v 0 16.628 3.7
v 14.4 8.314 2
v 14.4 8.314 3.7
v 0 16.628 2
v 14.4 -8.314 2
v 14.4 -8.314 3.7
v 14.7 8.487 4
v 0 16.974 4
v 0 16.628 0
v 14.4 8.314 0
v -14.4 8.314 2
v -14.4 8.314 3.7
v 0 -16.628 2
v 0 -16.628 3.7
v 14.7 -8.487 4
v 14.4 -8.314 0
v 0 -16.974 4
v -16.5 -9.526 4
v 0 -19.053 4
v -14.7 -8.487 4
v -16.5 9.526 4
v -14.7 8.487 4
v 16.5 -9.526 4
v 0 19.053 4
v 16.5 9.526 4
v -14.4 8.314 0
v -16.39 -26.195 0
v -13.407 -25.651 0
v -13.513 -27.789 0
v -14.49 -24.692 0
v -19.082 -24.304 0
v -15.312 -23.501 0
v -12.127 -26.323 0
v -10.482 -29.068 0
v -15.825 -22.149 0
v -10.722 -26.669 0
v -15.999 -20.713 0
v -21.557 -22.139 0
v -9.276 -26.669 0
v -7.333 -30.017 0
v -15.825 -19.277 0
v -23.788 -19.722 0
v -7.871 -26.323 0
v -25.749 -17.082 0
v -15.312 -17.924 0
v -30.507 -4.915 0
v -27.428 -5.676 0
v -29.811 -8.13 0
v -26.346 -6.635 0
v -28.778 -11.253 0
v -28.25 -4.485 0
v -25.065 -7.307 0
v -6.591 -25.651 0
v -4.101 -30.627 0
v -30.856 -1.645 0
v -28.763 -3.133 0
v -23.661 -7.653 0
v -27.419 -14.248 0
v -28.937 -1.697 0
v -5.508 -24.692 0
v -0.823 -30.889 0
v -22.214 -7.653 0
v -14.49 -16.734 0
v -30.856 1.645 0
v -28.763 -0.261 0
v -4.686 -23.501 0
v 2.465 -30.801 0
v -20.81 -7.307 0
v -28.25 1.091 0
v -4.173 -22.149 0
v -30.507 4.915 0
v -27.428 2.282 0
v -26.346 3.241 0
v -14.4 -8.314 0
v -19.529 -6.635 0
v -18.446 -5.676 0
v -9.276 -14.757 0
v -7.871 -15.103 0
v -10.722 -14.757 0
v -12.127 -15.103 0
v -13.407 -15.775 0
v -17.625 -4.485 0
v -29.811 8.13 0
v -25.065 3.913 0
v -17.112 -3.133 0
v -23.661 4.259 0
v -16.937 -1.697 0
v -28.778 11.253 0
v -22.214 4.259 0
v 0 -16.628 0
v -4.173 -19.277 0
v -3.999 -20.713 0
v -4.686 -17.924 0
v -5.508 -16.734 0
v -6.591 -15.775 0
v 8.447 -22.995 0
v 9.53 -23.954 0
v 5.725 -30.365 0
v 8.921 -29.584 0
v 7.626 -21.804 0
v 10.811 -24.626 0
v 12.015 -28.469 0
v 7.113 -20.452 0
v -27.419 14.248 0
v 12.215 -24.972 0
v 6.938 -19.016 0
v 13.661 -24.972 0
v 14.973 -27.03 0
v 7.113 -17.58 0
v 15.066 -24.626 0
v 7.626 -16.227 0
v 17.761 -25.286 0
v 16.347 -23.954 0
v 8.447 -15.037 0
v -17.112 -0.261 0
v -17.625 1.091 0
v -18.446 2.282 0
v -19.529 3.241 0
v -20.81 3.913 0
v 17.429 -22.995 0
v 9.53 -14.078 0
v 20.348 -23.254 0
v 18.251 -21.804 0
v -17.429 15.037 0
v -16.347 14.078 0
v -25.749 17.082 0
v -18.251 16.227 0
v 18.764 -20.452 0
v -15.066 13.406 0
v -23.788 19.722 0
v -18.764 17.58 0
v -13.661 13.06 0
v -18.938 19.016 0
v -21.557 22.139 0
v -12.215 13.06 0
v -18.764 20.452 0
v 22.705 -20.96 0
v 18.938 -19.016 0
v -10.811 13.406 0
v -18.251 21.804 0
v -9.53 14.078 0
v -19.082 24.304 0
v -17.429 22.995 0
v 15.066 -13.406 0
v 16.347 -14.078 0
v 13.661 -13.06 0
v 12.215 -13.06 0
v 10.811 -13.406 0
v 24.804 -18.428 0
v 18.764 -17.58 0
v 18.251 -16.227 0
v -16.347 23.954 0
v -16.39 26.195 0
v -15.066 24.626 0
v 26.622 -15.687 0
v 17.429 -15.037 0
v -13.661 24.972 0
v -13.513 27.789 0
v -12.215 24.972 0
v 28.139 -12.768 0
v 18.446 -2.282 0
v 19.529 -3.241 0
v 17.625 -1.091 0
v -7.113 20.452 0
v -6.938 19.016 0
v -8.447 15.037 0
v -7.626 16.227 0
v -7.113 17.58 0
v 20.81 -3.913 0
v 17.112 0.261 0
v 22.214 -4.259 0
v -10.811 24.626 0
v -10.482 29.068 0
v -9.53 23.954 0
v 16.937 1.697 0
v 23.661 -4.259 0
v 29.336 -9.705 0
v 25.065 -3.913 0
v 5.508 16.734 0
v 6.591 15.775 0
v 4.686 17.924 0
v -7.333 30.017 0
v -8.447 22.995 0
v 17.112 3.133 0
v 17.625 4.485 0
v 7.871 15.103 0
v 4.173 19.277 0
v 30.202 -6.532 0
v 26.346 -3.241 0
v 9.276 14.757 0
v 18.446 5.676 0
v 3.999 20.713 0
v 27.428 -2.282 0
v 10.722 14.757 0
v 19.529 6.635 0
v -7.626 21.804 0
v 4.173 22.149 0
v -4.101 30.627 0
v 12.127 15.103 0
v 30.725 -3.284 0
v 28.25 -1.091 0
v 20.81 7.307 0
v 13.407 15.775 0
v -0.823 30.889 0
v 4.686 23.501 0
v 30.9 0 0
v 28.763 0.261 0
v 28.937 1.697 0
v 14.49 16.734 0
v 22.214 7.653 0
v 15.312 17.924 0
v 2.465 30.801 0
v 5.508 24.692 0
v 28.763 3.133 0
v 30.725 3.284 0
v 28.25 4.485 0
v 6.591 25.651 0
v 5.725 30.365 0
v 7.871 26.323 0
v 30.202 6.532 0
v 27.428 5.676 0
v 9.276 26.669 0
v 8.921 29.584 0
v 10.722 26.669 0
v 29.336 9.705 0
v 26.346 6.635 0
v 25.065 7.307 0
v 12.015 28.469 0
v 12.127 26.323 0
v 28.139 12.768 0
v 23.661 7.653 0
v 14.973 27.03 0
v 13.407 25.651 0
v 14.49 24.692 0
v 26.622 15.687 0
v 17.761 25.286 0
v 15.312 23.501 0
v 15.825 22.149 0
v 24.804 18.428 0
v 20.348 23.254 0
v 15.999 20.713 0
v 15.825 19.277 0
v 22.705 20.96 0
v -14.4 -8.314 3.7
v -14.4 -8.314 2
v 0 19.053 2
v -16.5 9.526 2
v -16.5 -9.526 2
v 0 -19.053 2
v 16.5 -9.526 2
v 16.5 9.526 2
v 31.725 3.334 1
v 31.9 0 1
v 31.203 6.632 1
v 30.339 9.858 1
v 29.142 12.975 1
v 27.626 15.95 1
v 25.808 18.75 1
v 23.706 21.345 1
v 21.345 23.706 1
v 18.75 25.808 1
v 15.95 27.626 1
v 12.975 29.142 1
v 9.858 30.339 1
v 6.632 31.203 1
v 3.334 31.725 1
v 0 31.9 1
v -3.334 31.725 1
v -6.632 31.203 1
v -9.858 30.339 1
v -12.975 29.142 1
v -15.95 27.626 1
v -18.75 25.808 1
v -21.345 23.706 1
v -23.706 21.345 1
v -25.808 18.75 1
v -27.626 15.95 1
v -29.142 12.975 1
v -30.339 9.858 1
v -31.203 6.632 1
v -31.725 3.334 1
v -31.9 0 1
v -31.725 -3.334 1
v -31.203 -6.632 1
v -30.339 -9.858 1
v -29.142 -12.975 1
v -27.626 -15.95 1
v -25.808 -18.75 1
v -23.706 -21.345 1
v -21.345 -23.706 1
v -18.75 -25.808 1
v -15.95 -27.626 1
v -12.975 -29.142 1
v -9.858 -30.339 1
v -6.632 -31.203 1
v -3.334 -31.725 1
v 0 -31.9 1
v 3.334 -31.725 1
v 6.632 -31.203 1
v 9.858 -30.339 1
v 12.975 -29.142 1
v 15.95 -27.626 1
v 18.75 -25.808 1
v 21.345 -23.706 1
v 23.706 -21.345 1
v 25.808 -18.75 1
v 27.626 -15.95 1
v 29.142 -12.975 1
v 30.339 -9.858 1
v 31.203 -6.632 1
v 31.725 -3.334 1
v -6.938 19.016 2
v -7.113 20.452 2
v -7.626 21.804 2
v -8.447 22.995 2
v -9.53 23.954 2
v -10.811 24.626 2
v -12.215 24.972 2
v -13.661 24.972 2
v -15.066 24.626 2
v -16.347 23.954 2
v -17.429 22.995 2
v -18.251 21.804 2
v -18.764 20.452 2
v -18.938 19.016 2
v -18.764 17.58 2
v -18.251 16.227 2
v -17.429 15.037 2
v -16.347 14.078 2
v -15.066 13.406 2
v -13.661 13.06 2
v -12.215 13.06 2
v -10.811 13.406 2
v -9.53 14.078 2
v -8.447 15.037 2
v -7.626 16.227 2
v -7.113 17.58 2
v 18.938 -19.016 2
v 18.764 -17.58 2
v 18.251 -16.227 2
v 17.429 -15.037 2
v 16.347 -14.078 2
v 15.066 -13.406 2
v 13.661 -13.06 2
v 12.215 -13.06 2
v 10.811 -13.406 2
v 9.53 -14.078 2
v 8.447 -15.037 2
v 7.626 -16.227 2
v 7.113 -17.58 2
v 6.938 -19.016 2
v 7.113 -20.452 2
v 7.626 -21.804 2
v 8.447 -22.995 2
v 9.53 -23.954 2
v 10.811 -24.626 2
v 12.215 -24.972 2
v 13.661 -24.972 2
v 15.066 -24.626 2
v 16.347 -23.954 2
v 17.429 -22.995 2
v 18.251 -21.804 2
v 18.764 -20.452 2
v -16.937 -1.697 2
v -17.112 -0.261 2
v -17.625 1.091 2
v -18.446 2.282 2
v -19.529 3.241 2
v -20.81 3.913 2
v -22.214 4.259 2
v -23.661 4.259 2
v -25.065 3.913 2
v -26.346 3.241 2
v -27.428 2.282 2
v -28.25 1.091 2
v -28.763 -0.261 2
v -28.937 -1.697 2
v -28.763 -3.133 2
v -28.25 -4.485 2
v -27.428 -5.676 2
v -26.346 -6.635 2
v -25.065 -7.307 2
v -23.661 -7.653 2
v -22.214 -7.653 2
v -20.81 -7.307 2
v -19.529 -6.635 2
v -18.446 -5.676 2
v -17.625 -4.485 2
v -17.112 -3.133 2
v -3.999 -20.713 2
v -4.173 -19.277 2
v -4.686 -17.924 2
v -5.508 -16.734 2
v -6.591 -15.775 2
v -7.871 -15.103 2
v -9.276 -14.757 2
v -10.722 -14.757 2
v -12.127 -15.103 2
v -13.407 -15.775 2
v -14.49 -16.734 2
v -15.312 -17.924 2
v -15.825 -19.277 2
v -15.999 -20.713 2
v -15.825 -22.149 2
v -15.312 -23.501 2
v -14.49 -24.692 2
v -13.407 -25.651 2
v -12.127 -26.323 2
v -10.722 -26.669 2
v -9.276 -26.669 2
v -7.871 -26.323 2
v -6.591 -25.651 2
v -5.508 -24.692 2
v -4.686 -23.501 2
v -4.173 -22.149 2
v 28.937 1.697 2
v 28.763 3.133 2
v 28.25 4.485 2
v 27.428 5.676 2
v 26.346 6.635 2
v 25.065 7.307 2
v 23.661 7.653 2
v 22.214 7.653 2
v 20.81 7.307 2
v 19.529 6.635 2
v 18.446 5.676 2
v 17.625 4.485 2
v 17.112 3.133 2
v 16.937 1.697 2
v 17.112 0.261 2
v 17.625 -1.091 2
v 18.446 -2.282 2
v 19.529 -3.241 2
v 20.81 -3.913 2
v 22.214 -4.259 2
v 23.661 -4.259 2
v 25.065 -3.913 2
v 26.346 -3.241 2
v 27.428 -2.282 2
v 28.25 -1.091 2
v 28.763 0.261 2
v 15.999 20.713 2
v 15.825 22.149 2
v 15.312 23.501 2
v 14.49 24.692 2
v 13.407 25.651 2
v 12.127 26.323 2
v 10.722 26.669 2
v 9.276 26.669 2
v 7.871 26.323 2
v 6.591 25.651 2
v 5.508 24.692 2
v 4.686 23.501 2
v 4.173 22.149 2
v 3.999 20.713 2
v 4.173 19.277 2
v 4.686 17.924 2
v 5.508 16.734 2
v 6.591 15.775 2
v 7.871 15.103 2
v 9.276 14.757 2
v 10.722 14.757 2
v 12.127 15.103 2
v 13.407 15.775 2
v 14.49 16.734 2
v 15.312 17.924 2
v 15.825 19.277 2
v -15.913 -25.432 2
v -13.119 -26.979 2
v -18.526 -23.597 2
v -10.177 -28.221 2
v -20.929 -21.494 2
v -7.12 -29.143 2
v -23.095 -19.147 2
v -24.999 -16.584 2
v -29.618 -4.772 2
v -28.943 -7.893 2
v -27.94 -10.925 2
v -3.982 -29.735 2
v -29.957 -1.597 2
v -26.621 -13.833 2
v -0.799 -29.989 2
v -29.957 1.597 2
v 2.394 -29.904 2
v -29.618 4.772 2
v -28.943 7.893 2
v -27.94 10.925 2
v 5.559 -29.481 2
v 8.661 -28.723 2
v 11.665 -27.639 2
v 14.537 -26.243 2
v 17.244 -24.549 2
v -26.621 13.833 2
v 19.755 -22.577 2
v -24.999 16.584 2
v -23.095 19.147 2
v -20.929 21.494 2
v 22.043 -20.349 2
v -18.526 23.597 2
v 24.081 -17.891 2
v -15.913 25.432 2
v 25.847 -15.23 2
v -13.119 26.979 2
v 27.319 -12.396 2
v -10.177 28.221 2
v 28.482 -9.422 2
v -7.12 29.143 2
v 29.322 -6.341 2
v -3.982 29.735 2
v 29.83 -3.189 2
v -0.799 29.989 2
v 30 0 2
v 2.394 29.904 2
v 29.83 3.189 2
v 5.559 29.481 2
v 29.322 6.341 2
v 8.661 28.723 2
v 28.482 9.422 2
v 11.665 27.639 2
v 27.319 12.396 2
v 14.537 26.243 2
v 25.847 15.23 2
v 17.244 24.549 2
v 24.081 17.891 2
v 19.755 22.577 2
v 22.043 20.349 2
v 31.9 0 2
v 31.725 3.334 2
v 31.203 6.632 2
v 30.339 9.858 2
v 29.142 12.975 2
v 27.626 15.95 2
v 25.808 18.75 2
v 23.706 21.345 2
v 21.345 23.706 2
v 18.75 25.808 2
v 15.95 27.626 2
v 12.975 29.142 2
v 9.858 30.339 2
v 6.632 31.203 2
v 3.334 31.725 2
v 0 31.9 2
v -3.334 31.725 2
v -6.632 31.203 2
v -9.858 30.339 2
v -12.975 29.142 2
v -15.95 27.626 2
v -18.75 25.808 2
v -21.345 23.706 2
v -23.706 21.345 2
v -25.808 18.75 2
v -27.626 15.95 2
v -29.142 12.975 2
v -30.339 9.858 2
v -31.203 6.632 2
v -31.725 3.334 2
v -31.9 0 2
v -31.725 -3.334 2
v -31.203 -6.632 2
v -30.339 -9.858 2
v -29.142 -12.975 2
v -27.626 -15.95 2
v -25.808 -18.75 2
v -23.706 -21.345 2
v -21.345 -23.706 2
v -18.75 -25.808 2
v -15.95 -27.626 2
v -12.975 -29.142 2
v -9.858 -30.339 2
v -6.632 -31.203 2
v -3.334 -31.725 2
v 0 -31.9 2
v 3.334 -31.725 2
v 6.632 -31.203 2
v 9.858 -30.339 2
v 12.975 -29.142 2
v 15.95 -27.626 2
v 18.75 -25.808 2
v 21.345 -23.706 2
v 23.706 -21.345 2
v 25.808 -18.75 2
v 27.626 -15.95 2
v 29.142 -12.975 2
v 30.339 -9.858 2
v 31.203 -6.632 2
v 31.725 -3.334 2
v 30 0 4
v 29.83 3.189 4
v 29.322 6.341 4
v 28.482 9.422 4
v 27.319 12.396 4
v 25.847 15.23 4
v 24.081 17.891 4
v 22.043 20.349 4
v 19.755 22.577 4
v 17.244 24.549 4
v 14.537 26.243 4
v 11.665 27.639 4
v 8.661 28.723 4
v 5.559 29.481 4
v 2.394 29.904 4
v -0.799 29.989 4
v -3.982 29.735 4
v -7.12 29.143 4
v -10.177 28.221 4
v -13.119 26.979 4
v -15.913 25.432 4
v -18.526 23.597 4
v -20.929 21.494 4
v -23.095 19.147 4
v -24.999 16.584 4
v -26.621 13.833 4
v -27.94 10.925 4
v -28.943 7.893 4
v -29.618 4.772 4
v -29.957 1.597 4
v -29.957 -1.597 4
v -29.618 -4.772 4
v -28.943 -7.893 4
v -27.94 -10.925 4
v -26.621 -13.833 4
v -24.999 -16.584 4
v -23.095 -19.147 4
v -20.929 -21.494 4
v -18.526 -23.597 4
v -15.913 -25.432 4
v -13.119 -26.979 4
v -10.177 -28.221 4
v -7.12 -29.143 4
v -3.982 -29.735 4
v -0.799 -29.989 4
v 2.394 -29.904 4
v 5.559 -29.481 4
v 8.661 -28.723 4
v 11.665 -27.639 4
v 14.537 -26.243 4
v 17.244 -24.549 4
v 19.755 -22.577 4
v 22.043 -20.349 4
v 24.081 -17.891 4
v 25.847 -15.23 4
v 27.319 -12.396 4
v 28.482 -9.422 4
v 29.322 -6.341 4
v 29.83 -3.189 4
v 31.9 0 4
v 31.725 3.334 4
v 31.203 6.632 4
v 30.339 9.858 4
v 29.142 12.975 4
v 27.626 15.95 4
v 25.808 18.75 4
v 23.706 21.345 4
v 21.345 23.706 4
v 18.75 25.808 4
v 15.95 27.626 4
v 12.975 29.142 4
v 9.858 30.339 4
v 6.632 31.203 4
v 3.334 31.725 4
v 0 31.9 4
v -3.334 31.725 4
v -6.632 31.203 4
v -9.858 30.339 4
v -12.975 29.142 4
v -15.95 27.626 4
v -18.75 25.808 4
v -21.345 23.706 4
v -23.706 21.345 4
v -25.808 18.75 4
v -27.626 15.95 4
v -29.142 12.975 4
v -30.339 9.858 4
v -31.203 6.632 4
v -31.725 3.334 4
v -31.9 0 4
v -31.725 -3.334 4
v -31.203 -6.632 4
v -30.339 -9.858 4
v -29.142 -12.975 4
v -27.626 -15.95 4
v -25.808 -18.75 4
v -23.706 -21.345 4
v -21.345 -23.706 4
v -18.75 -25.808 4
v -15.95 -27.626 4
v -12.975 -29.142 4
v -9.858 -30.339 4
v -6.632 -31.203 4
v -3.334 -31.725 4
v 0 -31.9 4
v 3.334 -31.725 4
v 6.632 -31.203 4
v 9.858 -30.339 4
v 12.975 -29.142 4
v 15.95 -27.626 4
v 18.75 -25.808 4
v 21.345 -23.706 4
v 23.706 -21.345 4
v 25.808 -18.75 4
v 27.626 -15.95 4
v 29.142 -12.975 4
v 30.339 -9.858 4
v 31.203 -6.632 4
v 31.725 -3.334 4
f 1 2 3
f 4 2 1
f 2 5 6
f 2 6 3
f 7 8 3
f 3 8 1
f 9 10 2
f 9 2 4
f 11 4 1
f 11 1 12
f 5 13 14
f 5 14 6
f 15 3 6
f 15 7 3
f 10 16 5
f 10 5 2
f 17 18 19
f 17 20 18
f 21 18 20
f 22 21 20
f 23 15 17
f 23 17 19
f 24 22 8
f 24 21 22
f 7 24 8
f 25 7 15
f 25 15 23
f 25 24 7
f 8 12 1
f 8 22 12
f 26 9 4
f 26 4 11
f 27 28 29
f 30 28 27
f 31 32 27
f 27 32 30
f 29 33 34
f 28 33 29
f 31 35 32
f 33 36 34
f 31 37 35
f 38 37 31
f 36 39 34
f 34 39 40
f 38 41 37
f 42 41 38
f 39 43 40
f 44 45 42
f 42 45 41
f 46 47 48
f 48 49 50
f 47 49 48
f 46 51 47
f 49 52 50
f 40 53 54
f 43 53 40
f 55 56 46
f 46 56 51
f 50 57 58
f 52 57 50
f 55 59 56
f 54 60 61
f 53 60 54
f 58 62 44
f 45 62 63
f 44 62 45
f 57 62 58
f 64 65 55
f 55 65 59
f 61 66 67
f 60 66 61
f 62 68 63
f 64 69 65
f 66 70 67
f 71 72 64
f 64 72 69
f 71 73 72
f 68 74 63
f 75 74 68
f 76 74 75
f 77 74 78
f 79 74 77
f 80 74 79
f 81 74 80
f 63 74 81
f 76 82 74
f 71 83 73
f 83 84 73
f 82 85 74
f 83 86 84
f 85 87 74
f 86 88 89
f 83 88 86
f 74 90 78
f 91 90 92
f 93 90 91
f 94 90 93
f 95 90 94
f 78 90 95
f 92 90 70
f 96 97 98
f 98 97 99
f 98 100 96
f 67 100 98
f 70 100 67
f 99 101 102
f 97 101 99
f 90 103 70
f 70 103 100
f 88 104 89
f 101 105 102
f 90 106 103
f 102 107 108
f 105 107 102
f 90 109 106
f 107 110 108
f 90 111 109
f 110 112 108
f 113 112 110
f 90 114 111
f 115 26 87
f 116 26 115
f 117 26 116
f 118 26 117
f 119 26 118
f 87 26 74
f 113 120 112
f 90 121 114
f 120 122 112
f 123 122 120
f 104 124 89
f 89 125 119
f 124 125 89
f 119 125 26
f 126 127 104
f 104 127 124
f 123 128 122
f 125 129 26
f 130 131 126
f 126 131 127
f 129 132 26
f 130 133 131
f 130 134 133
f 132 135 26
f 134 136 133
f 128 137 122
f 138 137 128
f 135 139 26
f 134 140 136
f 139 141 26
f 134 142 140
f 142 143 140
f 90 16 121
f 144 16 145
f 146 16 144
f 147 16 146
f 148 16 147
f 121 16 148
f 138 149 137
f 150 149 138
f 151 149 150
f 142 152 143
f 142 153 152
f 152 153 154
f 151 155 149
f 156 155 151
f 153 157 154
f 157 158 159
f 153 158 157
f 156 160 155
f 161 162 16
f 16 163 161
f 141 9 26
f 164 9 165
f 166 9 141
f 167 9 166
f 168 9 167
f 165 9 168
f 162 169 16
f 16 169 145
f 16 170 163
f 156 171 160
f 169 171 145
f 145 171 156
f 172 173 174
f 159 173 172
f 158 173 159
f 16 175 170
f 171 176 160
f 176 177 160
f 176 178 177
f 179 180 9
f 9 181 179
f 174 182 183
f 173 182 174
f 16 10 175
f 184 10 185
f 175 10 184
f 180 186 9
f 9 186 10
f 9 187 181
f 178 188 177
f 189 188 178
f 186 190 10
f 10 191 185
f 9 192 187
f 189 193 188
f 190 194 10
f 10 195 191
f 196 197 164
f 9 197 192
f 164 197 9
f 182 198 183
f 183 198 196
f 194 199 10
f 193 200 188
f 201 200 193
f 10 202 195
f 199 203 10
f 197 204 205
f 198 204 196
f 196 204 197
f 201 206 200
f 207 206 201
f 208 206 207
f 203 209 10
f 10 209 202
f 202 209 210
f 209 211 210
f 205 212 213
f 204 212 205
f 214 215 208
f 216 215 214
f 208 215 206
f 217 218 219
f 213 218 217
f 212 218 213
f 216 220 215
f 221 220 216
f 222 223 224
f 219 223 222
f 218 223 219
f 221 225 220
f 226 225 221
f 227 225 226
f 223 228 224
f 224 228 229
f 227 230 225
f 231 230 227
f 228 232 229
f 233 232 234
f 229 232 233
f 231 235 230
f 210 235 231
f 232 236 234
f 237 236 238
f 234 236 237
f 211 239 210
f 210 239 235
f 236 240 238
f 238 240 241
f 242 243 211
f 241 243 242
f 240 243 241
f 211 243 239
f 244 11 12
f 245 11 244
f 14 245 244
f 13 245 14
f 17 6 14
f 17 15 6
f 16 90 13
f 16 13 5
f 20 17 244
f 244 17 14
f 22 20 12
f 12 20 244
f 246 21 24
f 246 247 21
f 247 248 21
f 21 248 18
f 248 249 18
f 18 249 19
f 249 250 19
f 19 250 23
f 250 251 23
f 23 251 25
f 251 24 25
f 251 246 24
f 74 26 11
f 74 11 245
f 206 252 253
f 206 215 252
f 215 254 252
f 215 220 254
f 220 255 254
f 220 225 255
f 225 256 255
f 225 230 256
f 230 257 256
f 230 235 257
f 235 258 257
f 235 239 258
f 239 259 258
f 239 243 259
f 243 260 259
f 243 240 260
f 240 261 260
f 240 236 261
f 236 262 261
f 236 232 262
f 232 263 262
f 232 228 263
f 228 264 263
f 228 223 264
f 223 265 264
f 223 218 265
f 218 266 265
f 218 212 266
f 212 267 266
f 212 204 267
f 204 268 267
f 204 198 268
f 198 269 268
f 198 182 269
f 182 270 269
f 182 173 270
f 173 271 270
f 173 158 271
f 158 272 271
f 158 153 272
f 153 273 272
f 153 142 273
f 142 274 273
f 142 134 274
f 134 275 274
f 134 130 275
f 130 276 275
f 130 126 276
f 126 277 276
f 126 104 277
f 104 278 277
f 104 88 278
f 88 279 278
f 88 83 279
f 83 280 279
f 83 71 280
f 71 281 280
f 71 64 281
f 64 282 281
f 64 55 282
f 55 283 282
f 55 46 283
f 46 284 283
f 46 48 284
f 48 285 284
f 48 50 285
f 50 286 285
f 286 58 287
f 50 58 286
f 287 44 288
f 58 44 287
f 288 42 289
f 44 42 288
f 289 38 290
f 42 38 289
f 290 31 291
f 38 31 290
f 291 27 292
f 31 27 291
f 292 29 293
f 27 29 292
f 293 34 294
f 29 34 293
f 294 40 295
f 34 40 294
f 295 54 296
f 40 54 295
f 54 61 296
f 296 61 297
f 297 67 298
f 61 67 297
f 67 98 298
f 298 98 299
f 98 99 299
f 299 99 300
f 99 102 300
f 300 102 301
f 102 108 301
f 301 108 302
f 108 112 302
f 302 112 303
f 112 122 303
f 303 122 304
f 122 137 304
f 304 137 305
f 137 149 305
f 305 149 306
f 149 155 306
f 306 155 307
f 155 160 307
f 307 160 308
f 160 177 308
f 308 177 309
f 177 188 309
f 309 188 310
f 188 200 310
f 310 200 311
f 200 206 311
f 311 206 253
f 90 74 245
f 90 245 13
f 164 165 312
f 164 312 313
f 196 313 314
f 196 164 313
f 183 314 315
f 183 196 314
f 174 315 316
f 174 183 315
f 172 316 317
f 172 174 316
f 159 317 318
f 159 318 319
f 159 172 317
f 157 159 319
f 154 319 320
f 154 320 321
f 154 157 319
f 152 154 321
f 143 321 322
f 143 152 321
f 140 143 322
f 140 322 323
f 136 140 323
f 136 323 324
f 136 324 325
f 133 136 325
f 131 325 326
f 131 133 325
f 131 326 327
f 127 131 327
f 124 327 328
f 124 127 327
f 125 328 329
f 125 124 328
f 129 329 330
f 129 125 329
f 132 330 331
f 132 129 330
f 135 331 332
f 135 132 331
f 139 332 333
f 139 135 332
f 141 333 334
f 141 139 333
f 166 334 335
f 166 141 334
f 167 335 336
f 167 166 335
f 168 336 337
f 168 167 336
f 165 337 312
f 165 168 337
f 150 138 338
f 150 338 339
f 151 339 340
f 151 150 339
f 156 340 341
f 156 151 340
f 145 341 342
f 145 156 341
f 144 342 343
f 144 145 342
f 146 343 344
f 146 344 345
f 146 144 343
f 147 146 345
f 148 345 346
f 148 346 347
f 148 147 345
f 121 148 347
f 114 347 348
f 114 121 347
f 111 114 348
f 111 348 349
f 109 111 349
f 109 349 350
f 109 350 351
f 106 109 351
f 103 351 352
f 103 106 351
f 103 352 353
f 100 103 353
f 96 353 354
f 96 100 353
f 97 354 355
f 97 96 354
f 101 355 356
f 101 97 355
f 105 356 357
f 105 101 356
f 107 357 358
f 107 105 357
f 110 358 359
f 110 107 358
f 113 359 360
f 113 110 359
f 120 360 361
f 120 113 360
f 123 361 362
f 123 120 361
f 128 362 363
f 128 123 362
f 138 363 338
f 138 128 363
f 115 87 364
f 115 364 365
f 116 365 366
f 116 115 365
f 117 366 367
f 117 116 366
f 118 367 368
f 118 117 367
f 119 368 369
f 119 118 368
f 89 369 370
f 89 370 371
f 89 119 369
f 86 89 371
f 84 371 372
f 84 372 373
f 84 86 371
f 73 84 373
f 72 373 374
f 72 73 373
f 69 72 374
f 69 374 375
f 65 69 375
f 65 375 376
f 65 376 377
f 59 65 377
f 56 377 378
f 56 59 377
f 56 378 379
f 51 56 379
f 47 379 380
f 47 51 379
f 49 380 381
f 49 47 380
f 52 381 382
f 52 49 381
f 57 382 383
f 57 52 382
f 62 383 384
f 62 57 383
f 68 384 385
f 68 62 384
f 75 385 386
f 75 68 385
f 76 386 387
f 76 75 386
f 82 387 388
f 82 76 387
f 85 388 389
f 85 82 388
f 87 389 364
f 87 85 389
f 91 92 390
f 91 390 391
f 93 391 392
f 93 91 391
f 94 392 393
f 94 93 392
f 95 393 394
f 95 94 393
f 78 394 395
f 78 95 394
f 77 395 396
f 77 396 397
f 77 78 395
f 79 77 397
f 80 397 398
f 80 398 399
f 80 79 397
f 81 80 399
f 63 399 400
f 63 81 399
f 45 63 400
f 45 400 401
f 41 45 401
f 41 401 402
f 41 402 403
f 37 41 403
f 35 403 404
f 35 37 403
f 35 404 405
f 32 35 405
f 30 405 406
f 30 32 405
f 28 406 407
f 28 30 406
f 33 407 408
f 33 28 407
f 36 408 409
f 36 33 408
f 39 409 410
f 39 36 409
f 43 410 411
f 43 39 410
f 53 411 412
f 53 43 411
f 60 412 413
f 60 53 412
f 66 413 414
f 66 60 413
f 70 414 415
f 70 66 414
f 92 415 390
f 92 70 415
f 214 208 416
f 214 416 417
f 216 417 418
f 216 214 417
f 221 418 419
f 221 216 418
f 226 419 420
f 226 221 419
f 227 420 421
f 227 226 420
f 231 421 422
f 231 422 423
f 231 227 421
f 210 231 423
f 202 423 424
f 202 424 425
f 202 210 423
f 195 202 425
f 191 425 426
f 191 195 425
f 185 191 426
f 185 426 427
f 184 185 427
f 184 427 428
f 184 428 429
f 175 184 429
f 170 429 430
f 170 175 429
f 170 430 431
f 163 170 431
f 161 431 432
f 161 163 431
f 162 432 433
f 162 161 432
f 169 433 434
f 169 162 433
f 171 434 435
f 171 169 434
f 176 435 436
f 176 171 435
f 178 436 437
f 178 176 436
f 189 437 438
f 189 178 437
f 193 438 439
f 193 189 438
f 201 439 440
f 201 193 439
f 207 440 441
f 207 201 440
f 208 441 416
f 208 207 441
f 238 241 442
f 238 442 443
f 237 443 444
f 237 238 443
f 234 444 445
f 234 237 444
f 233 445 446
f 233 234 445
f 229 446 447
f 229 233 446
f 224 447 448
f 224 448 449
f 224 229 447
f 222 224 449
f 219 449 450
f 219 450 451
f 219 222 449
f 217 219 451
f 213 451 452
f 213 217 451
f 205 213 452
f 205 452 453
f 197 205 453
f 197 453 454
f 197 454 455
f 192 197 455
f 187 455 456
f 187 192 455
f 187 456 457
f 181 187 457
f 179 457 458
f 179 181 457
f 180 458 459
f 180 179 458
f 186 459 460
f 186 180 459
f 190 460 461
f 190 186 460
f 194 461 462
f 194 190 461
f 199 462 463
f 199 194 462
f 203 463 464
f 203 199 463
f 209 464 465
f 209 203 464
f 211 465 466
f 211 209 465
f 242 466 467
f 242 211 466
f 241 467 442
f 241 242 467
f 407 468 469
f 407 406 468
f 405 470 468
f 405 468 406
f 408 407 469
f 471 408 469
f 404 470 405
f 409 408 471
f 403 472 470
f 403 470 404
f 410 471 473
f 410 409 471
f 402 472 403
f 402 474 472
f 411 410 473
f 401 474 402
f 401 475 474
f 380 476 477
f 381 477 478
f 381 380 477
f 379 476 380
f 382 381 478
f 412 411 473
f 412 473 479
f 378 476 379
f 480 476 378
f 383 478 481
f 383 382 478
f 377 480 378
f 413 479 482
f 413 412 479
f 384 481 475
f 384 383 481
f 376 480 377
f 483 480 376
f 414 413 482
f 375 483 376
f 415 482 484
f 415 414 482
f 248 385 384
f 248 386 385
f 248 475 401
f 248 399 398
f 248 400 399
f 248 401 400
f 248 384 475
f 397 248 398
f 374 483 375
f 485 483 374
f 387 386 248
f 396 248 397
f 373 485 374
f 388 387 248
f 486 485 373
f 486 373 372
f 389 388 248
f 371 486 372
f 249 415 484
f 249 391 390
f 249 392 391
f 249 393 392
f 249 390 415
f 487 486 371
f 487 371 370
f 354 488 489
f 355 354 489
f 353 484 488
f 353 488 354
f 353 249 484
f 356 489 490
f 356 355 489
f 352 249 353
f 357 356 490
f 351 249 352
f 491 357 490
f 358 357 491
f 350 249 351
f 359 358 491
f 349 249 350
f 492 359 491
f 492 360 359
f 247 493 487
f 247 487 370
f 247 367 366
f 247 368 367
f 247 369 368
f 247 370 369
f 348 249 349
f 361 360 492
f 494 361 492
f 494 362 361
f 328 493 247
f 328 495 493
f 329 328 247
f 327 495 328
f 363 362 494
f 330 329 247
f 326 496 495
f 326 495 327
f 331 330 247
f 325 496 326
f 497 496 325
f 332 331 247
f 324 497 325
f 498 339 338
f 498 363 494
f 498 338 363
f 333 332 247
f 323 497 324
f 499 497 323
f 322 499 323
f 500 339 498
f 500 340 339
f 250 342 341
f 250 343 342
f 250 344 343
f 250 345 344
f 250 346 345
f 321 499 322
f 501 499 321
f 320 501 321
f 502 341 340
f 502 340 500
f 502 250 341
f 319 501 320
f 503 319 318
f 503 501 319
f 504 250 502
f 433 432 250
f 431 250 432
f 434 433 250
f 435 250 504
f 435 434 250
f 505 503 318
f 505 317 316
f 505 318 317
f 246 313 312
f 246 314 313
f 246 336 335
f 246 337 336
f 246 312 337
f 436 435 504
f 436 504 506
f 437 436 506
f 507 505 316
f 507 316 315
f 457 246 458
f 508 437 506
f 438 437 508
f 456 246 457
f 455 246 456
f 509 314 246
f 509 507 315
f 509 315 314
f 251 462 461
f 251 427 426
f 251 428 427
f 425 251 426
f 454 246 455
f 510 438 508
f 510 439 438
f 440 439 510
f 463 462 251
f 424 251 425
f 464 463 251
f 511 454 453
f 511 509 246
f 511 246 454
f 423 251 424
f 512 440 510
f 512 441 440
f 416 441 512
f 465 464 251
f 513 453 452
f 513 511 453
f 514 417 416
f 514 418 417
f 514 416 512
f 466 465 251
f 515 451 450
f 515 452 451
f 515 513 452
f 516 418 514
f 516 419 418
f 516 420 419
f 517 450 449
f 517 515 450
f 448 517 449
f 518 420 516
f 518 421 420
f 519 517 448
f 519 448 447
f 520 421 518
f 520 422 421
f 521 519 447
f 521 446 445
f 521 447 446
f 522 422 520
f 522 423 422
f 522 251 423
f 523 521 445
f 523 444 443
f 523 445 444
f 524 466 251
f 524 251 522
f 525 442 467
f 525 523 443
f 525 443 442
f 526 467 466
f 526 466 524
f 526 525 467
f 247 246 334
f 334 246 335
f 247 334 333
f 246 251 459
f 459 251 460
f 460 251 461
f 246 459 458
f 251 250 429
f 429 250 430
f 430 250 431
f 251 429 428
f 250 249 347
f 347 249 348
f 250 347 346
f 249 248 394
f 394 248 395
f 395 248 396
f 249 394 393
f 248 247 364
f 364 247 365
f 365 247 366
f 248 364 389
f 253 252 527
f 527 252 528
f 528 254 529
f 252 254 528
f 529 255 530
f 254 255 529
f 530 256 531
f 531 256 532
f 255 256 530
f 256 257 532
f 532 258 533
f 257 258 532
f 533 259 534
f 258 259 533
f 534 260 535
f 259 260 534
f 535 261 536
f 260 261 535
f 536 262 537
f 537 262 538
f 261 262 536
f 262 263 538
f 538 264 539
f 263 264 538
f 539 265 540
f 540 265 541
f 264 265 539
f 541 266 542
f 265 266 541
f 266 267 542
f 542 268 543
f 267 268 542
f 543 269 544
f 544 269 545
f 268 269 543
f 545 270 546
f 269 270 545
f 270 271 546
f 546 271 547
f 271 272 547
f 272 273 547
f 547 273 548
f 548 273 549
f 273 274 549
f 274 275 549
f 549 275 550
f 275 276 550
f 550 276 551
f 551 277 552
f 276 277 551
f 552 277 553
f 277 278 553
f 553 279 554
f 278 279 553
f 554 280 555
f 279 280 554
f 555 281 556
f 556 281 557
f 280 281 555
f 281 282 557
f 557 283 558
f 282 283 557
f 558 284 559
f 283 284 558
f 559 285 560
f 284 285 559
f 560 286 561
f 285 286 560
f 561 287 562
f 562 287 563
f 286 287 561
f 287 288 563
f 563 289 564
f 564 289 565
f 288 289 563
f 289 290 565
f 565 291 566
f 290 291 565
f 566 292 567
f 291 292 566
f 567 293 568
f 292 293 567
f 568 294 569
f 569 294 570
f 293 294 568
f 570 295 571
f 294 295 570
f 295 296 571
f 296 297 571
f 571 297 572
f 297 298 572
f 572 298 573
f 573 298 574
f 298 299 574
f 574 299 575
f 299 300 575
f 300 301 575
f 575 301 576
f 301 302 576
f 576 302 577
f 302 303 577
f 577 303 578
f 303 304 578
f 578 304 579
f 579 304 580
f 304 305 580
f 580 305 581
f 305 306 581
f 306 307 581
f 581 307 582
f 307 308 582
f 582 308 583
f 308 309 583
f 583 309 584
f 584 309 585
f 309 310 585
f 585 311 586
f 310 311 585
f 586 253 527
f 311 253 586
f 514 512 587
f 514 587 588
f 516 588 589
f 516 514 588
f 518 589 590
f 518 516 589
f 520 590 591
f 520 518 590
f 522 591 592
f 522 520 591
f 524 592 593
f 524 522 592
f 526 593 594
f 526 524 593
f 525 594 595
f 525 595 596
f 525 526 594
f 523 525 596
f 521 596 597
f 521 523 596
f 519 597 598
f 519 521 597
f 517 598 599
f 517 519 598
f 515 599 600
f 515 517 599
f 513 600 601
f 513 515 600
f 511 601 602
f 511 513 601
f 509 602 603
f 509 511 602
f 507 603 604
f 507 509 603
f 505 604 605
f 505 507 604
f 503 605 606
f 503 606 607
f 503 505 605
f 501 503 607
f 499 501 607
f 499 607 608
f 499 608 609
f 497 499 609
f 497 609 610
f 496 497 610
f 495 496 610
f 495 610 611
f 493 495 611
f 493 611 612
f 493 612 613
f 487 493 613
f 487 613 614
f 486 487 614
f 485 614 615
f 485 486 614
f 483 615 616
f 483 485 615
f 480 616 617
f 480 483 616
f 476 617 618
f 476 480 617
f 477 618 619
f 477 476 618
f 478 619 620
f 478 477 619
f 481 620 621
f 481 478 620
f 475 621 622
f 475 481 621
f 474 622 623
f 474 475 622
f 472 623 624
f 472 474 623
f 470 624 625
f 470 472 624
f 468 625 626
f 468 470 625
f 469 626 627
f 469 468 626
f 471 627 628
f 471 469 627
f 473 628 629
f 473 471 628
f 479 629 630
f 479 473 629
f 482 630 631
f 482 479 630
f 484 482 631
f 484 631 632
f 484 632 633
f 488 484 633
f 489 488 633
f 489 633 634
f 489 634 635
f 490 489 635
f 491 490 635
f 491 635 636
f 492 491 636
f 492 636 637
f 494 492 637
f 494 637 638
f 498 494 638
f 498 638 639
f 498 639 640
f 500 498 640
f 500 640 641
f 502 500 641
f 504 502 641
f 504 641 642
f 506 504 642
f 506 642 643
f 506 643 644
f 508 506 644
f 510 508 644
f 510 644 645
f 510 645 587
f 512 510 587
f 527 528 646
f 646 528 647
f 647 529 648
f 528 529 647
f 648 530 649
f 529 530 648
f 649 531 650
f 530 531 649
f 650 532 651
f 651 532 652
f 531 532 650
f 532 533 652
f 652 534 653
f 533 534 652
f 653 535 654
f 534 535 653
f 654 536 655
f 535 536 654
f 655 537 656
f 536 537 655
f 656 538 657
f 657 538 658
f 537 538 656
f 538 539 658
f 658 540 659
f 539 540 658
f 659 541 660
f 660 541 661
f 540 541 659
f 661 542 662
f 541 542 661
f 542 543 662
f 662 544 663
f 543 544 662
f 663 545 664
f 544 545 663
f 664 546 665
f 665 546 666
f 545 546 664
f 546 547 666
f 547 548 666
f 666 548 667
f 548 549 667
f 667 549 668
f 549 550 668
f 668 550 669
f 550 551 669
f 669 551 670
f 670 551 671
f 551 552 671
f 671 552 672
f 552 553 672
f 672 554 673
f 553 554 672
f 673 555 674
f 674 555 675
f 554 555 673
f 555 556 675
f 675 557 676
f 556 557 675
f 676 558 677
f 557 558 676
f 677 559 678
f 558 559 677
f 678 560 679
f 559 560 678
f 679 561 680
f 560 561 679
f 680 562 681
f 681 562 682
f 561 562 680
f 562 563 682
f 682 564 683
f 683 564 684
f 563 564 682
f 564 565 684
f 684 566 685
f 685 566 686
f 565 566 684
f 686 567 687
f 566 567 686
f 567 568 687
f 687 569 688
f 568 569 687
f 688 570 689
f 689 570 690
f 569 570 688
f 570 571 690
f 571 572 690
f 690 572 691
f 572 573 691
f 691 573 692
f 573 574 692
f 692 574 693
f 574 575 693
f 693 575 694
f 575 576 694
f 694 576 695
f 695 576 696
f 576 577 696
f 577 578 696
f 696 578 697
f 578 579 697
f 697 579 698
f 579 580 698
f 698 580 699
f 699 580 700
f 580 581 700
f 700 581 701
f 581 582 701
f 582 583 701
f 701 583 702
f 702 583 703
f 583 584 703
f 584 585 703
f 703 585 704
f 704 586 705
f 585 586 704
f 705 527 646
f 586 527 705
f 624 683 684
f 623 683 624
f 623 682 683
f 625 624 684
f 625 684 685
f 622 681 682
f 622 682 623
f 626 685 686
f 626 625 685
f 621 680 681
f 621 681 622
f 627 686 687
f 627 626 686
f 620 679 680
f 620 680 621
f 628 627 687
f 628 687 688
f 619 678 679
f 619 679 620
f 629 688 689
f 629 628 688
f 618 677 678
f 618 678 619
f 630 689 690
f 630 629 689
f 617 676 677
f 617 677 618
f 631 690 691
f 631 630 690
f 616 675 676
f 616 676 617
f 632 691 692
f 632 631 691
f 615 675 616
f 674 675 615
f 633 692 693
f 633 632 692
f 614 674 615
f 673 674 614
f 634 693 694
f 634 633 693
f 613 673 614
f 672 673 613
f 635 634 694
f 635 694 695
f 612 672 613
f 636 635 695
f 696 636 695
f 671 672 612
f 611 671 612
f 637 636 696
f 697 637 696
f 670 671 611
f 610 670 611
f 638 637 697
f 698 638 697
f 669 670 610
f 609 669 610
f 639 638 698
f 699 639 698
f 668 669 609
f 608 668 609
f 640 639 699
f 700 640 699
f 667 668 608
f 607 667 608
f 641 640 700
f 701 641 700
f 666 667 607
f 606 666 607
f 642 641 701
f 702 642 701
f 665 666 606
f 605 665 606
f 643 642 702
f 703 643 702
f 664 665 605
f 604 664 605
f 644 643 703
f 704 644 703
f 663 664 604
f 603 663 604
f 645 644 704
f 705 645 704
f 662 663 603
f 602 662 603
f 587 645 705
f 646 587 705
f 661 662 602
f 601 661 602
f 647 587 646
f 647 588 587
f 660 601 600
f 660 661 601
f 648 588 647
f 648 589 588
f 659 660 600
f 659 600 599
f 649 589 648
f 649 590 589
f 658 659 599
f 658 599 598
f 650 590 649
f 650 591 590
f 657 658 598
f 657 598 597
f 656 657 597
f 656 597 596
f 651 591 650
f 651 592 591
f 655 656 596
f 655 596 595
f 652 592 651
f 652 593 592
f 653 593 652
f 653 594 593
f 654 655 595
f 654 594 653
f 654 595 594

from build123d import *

# Parameters (mm, degrees)
SKETCH_R        = 31.9
SKETCH_R_2      = 6
PAD_DEPTH       = 2
SKETCH001_R     = 31.9
SKETCH001_R_2   = 30
PAD001_DEPTH    = 2
PAD002_DEPTH    = 2
CHAMFER_SIZE    = 1
CHAMFER001_SIZE = 0.3


with BuildPart() as part:
    # Sketch → Pad (new body)
    with BuildSketch(Plane.XY):
        Circle(SKETCH_R)
        with Locations((9.999037, 20.71278)):
            Circle(SKETCH_R_2, mode=Mode.SUBTRACT)
        with Locations((22.937312, 1.69697)):
            Circle(SKETCH_R_2, mode=Mode.SUBTRACT)
        with Locations((12.938275, -19.01581)):
            Circle(SKETCH_R_2, mode=Mode.SUBTRACT)
        with Locations((-9.999037, -20.71278)):
            Circle(SKETCH_R_2, mode=Mode.SUBTRACT)
        with Locations((-22.937312, -1.69697)):
            Circle(SKETCH_R_2, mode=Mode.SUBTRACT)
        with Locations((-12.938275, 19.01581)):
            Circle(SKETCH_R_2, mode=Mode.SUBTRACT)
        Polygon((0, 16.627688), (-14.4, 8.313844), (-14.4, -8.313844), (0, -16.627688), (14.4, -8.313844), (14.4, 8.313844), align=None, mode=Mode.SUBTRACT)
    extrude(amount=PAD_DEPTH)

    # Sketch001 (on Face15 of Pad) → Pad001 (join)
    with BuildSketch(Plane.XY.offset(2)):
        Circle(SKETCH001_R)
        Circle(SKETCH001_R_2, mode=Mode.SUBTRACT)
    extrude(amount=PAD001_DEPTH)

    # Sketch002 (on Face17 of Pad001) → Pad002 (join)
    with BuildSketch(Plane.XY.offset(2)):
        Polygon((0, 19.052559), (-16.5, 9.526279), (-16.5, -9.526279), (0, -19.052559), (16.5, -9.526279), (16.5, 9.526279), align=None)
        Polygon((0, 16.627688), (-14.4, 8.313844), (-14.4, -8.313844), (0, -16.627688), (14.4, -8.313844), (14.4, 8.313844), align=None, mode=Mode.SUBTRACT)
    extrude(amount=PAD002_DEPTH)

    # Chamfer
    chamfer_edges = [part.edges().sort_by_distance(p)[0] for p in [
        (-31.9, 0, 0),
    ]]
    chamfer(chamfer_edges, length=CHAMFER_SIZE)

    # Chamfer001
    chamfer001_edges = [part.edges().sort_by_distance(p)[0] for p in [
        (-7.2, -12.470766, 4),
        (-14.4, 0, 4),
        (-7.2, 12.470766, 4),
        (7.2, 12.470766, 4),
        (14.4, 0, 4),
        (7.2, -12.470766, 4),
    ]]
    chamfer(chamfer001_edges, length=CHAMFER001_SIZE)


solid = part.part
